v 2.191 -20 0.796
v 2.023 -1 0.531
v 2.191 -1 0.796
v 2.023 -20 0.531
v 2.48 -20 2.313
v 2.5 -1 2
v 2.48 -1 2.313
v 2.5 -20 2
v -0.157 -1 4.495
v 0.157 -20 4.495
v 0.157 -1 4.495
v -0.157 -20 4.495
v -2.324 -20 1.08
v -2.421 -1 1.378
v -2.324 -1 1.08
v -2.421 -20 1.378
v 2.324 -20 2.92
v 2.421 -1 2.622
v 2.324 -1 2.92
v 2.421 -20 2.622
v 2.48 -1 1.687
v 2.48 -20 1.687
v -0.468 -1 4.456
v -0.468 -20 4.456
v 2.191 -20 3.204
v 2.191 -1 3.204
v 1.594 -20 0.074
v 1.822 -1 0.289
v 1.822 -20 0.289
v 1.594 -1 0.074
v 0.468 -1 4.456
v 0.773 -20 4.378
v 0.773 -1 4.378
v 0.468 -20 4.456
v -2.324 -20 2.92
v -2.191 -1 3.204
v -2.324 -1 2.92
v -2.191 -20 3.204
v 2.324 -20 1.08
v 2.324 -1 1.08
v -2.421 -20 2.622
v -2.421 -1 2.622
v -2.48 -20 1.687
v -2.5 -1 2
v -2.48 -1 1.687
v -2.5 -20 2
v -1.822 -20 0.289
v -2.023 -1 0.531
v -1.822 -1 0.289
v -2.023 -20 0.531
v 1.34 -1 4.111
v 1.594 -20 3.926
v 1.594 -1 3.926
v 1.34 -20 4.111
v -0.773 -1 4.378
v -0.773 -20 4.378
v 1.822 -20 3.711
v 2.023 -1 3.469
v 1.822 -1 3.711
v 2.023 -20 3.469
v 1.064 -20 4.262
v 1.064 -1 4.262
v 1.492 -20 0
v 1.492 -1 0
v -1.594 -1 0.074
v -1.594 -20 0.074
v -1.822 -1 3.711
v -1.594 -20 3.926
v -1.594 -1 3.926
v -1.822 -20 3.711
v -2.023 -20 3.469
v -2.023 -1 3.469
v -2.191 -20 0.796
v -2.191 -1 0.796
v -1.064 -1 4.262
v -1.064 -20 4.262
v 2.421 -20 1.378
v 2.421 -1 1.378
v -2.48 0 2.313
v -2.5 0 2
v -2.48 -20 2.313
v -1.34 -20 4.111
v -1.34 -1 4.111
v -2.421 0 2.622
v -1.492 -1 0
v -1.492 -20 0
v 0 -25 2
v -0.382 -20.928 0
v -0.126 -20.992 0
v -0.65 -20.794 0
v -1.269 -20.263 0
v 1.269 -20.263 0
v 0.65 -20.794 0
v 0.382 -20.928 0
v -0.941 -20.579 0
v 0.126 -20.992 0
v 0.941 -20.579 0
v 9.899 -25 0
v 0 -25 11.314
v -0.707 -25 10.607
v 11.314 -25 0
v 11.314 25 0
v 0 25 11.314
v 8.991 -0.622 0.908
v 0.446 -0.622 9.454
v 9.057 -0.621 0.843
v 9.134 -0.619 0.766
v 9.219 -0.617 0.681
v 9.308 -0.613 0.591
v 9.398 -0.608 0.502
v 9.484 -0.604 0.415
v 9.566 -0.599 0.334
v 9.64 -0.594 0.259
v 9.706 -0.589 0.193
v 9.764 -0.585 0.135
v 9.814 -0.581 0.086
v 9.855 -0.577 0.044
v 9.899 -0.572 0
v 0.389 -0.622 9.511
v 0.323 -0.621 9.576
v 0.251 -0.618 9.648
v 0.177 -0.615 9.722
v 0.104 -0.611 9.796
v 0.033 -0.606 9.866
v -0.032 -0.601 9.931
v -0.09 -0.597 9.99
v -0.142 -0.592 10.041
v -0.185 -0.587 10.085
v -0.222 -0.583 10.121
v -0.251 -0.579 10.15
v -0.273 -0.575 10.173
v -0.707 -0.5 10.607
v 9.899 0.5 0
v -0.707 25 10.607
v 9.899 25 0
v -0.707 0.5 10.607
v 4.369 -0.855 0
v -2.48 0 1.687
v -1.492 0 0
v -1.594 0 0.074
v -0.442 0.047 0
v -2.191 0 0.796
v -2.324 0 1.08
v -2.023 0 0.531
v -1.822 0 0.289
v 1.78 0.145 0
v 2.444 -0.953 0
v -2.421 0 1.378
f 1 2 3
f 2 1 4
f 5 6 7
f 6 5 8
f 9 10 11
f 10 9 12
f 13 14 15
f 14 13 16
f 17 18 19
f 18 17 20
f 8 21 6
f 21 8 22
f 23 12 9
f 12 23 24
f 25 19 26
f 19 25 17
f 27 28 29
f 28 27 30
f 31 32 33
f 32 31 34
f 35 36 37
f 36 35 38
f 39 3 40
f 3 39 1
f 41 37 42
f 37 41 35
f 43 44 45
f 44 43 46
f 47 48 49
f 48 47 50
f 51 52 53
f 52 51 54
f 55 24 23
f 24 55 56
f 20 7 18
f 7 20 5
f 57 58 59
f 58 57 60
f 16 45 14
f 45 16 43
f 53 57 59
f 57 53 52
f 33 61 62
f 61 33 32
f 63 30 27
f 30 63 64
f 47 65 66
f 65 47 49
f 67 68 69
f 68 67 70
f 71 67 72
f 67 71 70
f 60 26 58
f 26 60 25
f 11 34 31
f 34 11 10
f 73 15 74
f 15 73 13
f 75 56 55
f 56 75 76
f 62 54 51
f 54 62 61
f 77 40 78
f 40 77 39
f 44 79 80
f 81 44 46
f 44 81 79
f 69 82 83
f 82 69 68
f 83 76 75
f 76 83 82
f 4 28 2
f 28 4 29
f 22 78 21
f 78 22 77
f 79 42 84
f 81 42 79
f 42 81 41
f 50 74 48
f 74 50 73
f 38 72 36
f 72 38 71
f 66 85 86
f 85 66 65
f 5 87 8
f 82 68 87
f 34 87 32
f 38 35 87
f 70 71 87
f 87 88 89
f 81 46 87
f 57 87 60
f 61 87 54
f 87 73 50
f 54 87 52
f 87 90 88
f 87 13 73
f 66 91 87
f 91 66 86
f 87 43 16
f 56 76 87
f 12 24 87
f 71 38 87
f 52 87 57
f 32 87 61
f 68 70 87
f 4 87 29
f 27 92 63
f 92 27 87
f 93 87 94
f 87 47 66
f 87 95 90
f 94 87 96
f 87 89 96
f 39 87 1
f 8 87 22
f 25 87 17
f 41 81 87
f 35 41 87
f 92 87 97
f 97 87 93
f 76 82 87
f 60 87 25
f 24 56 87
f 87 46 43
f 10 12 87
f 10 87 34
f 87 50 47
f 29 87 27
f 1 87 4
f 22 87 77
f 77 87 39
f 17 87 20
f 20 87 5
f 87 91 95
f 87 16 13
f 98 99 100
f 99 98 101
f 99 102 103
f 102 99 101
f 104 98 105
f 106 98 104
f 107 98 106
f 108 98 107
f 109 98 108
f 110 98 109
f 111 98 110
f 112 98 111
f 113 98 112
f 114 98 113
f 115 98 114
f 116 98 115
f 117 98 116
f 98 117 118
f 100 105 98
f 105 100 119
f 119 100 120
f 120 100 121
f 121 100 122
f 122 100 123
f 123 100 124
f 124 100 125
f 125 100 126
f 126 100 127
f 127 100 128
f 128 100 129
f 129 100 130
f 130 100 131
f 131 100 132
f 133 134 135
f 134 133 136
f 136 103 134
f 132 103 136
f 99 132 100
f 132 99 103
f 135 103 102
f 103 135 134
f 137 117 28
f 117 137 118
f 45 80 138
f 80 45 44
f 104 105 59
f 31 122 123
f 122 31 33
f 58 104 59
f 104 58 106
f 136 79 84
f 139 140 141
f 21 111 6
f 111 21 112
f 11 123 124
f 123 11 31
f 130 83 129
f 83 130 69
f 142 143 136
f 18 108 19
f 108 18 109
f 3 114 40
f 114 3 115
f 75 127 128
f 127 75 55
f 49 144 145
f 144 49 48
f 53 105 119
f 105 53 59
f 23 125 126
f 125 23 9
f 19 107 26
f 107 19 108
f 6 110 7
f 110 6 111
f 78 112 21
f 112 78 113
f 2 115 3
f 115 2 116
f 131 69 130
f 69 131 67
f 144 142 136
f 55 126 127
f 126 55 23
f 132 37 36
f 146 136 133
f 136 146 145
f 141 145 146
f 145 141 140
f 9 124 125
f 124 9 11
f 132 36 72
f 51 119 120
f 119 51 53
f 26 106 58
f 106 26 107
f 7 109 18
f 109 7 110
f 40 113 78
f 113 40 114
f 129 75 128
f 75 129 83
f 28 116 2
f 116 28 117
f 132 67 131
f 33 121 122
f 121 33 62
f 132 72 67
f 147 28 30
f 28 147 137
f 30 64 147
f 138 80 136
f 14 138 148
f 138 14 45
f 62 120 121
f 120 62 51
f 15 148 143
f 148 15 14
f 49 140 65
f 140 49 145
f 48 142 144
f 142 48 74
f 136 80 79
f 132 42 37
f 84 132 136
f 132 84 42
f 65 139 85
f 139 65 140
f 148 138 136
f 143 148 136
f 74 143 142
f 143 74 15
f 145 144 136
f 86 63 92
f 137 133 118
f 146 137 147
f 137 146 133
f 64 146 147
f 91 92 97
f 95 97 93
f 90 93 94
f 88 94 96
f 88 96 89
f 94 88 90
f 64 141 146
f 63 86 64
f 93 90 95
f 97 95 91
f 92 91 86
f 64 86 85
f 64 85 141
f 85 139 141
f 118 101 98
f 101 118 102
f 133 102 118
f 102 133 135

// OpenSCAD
// Cardboard Box Stacker (Remixed in OpenSCAD for printability) 
// Original Design By UnleashSpirit and Wolfcraft In https://www.thingiverse.com/thing:3331874
// Redesign By Brian Khuu 2024 for easier printability and parametric capability

$fn=50;

stacker_thickness = 1;
stacker_flange = 15;
stacker_height = 50;

pole_dia = 5;

rotate([90,0,0])
intersection()
{
    union()
    {
        rotate([0,0,45])
        {
            translate([stacker_flange/2, stacker_thickness/2-1/2, 0])
                cube([stacker_thickness, stacker_flange+1, stacker_height], center=true);
        }

        hull()
        {
            rotate([0,0,45])
            translate([stacker_flange/2, stacker_thickness/2-1/2, 0])
                cube([stacker_thickness, stacker_flange+1, 1], center=true);
            translate([0,2,0])
                cylinder(d=pole_dia, h=1);
        }

        translate([0,2,0])
        {
            cylinder(d=pole_dia, h=stacker_height/2-pole_dia);
            translate([0,0,stacker_height/2-pole_dia])
                cylinder(d1=pole_dia,d2=0, h=pole_dia);
        }

        if (0)
        rotate([0,180,0])
        translate([0,2,0])
        {
            cylinder(d=pole_dia, h=stacker_height/2-pole_dia);
            translate([0,0,stacker_height/2-pole_dia])
                cylinder(d1=pole_dia,d2=0, h=pole_dia);
        }
    }
    
   translate([0,stacker_flange/2,0])
    cube([stacker_flange*2,stacker_flange,stacker_height], center=true);
}
